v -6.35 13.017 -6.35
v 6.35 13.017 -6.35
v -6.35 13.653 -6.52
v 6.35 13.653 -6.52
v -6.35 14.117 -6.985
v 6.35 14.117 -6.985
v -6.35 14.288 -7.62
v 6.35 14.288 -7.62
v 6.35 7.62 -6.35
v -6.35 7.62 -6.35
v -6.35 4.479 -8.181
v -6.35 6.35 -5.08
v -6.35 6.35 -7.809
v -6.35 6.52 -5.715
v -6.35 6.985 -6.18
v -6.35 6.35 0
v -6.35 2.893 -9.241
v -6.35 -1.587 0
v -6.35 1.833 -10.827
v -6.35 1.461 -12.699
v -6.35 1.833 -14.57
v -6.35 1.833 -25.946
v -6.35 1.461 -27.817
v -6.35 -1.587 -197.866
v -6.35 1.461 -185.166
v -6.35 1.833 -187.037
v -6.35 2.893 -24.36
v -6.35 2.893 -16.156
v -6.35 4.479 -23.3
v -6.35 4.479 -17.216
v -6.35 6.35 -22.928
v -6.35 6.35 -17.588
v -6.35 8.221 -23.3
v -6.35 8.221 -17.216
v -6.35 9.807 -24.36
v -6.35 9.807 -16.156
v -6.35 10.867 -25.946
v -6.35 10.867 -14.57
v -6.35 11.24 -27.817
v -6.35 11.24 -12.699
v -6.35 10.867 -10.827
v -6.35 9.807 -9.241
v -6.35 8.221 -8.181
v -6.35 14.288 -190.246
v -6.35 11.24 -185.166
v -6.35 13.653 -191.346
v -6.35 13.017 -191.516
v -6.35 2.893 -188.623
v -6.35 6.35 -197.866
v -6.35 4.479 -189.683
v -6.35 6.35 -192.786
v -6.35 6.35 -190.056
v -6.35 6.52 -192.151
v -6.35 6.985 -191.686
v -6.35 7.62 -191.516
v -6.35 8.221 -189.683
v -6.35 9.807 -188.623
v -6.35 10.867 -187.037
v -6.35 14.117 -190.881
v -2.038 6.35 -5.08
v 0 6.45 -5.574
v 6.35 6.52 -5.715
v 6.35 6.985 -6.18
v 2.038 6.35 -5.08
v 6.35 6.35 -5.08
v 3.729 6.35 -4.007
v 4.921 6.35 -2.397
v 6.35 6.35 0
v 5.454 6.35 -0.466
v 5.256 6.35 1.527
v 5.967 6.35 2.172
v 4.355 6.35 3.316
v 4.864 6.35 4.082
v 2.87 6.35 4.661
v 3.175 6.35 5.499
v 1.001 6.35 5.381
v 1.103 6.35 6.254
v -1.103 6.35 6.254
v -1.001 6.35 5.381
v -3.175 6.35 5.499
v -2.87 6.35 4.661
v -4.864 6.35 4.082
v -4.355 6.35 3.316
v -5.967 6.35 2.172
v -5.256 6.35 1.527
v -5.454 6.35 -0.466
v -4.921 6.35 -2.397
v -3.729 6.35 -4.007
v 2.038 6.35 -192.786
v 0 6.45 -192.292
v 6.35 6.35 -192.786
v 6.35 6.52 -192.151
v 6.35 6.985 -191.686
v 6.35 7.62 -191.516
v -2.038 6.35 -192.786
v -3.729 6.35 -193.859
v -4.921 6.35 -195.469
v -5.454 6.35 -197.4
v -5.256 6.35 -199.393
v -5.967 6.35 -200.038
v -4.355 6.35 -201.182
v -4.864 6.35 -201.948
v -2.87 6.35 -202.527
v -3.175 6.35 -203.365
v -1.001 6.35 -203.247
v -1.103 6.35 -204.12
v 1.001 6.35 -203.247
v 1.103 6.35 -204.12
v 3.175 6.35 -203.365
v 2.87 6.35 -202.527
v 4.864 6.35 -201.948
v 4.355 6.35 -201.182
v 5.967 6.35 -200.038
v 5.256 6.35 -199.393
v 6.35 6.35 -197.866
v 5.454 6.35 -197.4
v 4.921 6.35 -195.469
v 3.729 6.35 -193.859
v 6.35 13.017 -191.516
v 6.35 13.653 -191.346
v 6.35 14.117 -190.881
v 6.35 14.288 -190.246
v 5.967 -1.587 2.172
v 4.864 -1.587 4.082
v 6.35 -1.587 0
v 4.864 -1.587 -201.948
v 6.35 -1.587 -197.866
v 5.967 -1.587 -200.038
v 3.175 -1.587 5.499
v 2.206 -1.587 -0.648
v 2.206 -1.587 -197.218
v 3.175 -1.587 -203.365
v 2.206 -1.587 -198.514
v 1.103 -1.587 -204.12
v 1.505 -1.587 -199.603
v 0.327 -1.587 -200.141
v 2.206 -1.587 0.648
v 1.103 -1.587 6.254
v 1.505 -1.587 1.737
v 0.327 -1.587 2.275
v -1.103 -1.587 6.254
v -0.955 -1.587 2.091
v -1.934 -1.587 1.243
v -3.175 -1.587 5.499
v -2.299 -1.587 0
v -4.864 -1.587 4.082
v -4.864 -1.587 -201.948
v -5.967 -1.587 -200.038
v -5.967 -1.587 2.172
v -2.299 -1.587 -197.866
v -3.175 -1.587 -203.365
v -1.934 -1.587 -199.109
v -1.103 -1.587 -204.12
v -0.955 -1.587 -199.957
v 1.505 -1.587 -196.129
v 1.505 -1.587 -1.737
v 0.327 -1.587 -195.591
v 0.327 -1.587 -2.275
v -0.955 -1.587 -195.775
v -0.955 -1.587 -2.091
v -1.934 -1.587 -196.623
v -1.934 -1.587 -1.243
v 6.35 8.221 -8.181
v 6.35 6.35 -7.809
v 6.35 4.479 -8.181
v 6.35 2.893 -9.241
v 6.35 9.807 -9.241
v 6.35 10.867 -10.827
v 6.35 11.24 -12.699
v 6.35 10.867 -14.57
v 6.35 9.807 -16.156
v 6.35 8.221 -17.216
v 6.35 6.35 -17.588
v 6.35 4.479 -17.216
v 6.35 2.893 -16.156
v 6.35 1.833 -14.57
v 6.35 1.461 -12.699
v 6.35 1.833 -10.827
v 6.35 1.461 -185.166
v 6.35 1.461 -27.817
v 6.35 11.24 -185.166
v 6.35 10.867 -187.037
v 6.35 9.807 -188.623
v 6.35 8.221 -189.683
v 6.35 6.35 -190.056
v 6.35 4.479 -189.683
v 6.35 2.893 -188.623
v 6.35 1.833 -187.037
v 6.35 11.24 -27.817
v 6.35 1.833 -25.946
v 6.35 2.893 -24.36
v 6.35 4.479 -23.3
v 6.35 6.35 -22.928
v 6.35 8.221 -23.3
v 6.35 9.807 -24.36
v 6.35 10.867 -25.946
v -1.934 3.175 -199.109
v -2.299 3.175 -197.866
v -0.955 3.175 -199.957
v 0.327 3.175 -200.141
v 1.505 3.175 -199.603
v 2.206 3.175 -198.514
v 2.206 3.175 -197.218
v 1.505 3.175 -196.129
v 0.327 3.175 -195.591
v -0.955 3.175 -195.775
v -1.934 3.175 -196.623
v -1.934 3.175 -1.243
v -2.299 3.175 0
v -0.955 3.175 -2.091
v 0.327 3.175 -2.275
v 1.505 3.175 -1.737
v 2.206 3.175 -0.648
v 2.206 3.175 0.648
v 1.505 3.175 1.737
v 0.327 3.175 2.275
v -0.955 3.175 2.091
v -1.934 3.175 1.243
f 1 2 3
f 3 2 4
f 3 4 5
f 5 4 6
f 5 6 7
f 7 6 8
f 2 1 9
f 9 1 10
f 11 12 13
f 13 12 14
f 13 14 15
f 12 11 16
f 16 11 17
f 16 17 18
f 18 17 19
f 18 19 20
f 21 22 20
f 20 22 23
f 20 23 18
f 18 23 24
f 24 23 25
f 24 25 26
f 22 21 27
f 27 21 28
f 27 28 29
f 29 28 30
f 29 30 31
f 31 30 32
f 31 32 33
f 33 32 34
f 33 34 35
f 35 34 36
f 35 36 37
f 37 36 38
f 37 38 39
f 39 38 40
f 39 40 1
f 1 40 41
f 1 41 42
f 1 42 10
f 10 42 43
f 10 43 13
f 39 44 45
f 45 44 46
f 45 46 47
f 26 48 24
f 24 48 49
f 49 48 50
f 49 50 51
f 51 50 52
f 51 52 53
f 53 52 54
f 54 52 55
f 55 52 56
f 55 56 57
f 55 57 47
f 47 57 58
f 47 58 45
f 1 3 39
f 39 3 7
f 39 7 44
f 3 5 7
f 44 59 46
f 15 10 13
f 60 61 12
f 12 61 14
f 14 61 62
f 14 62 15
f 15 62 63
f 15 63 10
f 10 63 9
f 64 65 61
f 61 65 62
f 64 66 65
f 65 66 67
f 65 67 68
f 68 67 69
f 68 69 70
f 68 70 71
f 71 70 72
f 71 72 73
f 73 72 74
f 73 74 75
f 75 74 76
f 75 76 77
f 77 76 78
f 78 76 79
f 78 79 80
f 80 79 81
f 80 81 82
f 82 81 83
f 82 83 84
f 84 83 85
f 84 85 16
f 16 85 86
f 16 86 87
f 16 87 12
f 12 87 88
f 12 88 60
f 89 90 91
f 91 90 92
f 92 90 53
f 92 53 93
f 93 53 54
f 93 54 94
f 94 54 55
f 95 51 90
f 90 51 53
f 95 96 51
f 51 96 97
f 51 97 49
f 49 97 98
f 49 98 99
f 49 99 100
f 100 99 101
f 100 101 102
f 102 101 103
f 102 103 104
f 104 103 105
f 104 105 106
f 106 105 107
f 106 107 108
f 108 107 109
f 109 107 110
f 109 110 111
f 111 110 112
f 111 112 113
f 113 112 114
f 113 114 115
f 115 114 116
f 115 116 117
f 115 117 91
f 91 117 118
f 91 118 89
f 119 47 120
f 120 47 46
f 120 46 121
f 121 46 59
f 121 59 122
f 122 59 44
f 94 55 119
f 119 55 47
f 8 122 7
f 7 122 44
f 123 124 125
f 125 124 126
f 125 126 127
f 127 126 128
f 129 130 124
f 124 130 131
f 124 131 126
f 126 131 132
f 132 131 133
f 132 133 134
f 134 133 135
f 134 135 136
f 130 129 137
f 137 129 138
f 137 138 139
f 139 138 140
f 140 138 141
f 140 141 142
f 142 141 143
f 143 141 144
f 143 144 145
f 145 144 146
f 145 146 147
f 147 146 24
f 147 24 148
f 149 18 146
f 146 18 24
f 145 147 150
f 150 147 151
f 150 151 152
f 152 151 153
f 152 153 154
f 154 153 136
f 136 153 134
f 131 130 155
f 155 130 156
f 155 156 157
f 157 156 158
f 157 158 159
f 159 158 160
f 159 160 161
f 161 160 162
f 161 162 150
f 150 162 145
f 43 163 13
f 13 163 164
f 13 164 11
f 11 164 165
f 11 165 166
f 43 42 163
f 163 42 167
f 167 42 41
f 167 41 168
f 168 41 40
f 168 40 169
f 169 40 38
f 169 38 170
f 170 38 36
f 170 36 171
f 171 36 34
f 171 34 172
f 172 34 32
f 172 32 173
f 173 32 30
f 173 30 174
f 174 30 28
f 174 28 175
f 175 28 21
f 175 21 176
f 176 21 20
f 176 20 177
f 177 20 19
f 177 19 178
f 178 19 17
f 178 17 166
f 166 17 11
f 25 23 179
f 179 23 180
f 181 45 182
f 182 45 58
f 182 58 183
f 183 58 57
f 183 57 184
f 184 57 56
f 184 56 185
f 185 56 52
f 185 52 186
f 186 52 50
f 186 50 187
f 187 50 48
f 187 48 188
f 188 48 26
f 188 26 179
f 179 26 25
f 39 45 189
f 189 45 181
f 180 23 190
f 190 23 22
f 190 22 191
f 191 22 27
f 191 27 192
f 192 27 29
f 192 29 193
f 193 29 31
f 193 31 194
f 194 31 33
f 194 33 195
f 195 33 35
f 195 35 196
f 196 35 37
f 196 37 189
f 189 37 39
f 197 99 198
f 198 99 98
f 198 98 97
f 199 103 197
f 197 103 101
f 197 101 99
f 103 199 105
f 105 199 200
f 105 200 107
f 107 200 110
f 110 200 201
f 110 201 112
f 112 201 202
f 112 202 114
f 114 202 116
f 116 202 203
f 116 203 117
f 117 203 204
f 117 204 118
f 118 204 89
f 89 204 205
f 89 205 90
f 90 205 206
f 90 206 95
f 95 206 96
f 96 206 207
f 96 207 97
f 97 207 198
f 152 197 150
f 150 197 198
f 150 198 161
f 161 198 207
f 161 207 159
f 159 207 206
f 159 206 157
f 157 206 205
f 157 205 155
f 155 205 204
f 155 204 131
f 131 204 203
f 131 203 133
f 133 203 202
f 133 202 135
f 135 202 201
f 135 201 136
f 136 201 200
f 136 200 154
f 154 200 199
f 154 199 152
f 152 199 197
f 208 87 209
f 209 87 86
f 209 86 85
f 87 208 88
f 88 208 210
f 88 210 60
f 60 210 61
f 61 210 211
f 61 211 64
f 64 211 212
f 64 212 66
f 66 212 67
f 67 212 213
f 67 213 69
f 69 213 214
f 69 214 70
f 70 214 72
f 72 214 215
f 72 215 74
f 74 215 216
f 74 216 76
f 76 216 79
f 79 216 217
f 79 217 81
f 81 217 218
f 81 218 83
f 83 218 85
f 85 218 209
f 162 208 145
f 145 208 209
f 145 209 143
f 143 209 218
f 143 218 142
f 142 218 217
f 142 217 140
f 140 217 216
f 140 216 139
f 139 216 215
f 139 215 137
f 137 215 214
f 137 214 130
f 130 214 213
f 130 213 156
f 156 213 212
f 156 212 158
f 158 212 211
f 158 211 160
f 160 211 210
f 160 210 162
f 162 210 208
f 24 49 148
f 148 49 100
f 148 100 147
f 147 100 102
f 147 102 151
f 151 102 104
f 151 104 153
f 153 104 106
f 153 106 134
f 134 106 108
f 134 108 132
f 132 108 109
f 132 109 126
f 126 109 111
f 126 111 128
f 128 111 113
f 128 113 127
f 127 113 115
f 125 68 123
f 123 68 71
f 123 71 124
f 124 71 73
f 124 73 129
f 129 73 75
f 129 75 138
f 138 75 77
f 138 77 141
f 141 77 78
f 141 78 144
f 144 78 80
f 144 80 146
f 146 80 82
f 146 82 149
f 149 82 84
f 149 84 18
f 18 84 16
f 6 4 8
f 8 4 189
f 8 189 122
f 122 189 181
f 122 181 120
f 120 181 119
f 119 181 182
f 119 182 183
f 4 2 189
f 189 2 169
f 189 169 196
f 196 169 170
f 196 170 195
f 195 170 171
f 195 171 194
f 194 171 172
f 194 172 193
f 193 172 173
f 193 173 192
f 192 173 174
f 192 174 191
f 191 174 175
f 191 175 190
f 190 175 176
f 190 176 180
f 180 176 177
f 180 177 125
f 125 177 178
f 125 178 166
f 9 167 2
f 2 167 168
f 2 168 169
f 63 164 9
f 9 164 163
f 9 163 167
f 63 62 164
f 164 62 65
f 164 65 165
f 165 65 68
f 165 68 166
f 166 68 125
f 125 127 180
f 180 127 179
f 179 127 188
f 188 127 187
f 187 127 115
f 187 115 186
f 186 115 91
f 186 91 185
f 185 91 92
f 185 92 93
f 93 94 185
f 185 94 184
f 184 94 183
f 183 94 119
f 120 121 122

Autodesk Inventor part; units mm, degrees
ref_plane "YZ Plane" through (0, 0, 0) normal (1, 0, 0) x (0, 1, 0)
ref_plane "XZ Plane" through (0, 0, 0) normal (0, 1, 0) x (-1, 0, 0)
ref_plane "XY Plane" through (0, 0, 0) normal (0, 0, 1) x (1, 0, 0)
sketch "Sketch1" plane through (0, 0, 0) normal (0, 1, 0) x (-1, 0, 0)
  line L0 (0, 0) -> (0, -197.866) construction
  line L1 (-6.35, 0) -> (-6.35, -197.866)
  line L2 (6.35, -197.866) -> (6.35, 0)
  arc A0 (6.35, 0) -> (-6.35, 0) centre (0, 0) ccw
  arc A1 (-6.35, -197.866) -> (6.35, -197.866) centre (0, -197.866) ccw
  circle A2 centre (0, 0) radius 2.2987
  line L3 (0, -98.933) -> (6.35, -98.933)
  circle A3 centre (0, -197.866) radius 2.2987
  line L4 (-6.35, 6.35) -> (6.35, 6.35)
  line L5 (6.35, 6.35) -> (6.35, -6.35)
  line L6 (6.35, -6.35) -> (-6.35, -6.35)
  line L7 (-6.35, -6.35) -> (-6.35, 6.35)
  line L8 (-6.35, 6.35) -> (6.35, -6.35) construction
  line L9 (6.35, 6.35) -> (-6.35, -6.35) construction
  line L10 (-6.35, -204.216) -> (6.35, -204.216)
  line L11 (6.35, -204.216) -> (6.35, -191.516)
  line L12 (6.35, -191.516) -> (-6.35, -191.516)
  line L13 (-6.35, -191.516) -> (-6.35, -204.216)
  line L14 (-6.35, -204.216) -> (6.35, -191.516) construction
  line L15 (6.35, -204.216) -> (-6.35, -191.516) construction
  dimension "d0" = 197.866
  dimension "d1" = 12.7
  dimension "d2" = 4.5974
  dimension "d3" = 12.7
  dimension "d4" = 12.7
  dimension "d5" = 12.7
  dimension "d6" = 12.7
extrude "Extrusion1" add sketch "Sketch1" along normal blind 12.7 contours L6 L2 L12 L1
extrude "Extrusion2" add sketch "Sketch1" along normal blind 6.35 contours A0 L2 L6 L1 | L12 L2 A1 L1
chamfer "Chamfer1" distance 3.175 angle 45 2 edges at (2.2987, 6.35, 0) (2.2987, 6.35, -197.866)
sketch "Sketch2" plane through (6.35, 12.7, -6.35) normal (1, 0, 0) x (0, 0, -1)
  line L0 (-6.35, -12.7) -> (191.516, -12.7) projected
  line L1 (191.516, -12.7) -> (191.516, -6.35) projected
  line L2 (185.166, -6.35) -> (191.516, -6.35) projected
  line L3 (185.166, -6.35) -> (185.166, 0) projected
  line L4 (0, 0) -> (185.166, 0) projected
  line L5 (0, -6.35) -> (0, 0) projected
  line L6 (-6.35, -6.35) -> (0, -6.35) projected
  line L7 (-6.35, -12.7) -> (-6.35, -6.35) projected
  line L8 (0, -6.35) -> (0, -12.7)
  line L9 (185.166, -6.35) -> (185.166, -12.7)
  line L10 (0, -6.35) -> (6.3485, -6.35)
  line L11 (185.166, -6.35) -> (178.816, -6.35)
  circle A0 centre (6.3485, -6.35) radius 4.8895
  line L12 (178.816, -6.35) -> (21.4671, -6.35) construction
  line L13 (178.816, -1.4605) -> (21.4671, -1.4605)
  line L14 (21.4671, -11.2395) -> (178.816, -11.2395)
  arc A1 (178.816, -11.2395) -> (178.816, -1.4605) centre (178.816, -6.35) ccw
  arc A2 (21.4671, -1.4605) -> (21.4671, -11.2395) centre (21.4671, -6.35) ccw
  point P0 (100.1415, -6.35)
  dimension "d14" = 6.35
  dimension "d15" = 9.779
  dimension "d16" = 9.779
extrude "Extrusion3" cut sketch "Sketch2" against normal blind 33.3375 contours A1 L14 A2 L13 | A0
sketch "Sketch3" plane through (6.35, 0, 0) normal (1, 0, 0) x (0, 0, -1)
  circle A0 centre (12.6985, 6.35) radius 4.8895 projected
  arc A1 (27.8171, 11.2395) -> (27.8171, 1.4605) centre (27.8171, 6.35) ccw projected
  line L0 (27.8171, 11.2395) -> (185.166, 11.2395) projected
  arc A2 (185.166, 1.4605) -> (185.166, 11.2395) centre (185.166, 6.35) ccw projected
  line L1 (185.166, 1.4605) -> (27.8171, 1.4605) projected
  arc A3 (27.8171, 11.2395) -> (27.8171, 1.4605) centre (27.8171, 6.35) ccw projected
  circle A4 centre (12.6985, 6.35) radius 4.8895 projected
  line L2 (6.35, 6.35) -> (6.35, 12.7) projected
  line L3 (0, 6.35) -> (6.35, 6.35) projected
  line L4 (0, 0) -> (0, 6.35) projected
  line L5 (0, 0) -> (197.866, 0) projected
  line L6 (197.866, 0) -> (197.866, 6.35) projected
  line L7 (191.516, 6.35) -> (197.866, 6.35) projected
  line L8 (191.516, 6.35) -> (191.516, 12.7) projected
  line L9 (6.35, 12.7) -> (191.516, 12.7) projected
  line L10 (12.6985, 6.35) -> (134.6504, 128.3019) construction
  line L11 (17.1887, 1.8599) -> (139.1405, 123.8118)
  line L12 (130.1603, 132.792) -> (8.2084, 10.8401)
  arc A5 (8.2084, 10.8401) -> (17.1887, 1.8599) centre (12.6985, 6.35) ccw
  arc A6 (139.1405, 123.8118) -> (130.1603, 132.792) centre (134.6504, 128.3019) ccw
  line L13 (12.6985, 6.35) -> (185.1645, 6.35) construction
  line L14 (73.6745, 67.3259) -> (134.6504, 6.35)
  line L15 (134.6504, 6.35) -> (12.6985, 128.3019) construction
  line L16 (139.1405, 10.8401) -> (17.1887, 132.792)
  line L17 (8.2084, 123.8118) -> (130.1603, 1.8599)
  arc A7 (130.1603, 1.8599) -> (139.1405, 10.8401) centre (134.6504, 6.35) ccw
  arc A8 (17.1887, 132.792) -> (8.2084, 123.8118) centre (12.6985, 128.3019) ccw
  circle A9 centre (73.6745, 67.3259) radius 4.8895
  dimension "d20" = 172.466
  dimension "d21" = 45
  dimension "d22" = 12.7
  dimension "d23" = 172.466
  dimension "d24" = 12.7
  dimension "d25" = 9.779
  dimension "d26" = 9.779
extrude "Extrusion4" add sketch "Sketch1" against normal blind 1.5875 contours A0 L2 L6 L1 | L6 L2 L12 L1 | L12 L2 A1 L1
sketch "Sketch4" plane through (0, 12.7, 0) normal (0, 1, 0) x (1, 0, 0)
  line L0 (6.35, 6.35) -> (6.35, 191.516) projected
  line L1 (-6.35, 191.516) -> (-6.35, 6.35) projected
  line L2 (-6.35, 6.35) -> (6.35, 6.35) projected
  line L3 (6.35, 191.516) -> (-6.35, 191.516) projected
  point P0 (0, 0)
extrude "Extrusion5" add sketch "Sketch4" along normal blind 1.5875
fillet "Fillet2" radius 1.27 4 edges at (0, 14.2875, -191.516) (0, 6.35, -191.516) (0, 6.35, -6.35) (0, 14.2875, -6.35)
properties part number "Scissor Base"
